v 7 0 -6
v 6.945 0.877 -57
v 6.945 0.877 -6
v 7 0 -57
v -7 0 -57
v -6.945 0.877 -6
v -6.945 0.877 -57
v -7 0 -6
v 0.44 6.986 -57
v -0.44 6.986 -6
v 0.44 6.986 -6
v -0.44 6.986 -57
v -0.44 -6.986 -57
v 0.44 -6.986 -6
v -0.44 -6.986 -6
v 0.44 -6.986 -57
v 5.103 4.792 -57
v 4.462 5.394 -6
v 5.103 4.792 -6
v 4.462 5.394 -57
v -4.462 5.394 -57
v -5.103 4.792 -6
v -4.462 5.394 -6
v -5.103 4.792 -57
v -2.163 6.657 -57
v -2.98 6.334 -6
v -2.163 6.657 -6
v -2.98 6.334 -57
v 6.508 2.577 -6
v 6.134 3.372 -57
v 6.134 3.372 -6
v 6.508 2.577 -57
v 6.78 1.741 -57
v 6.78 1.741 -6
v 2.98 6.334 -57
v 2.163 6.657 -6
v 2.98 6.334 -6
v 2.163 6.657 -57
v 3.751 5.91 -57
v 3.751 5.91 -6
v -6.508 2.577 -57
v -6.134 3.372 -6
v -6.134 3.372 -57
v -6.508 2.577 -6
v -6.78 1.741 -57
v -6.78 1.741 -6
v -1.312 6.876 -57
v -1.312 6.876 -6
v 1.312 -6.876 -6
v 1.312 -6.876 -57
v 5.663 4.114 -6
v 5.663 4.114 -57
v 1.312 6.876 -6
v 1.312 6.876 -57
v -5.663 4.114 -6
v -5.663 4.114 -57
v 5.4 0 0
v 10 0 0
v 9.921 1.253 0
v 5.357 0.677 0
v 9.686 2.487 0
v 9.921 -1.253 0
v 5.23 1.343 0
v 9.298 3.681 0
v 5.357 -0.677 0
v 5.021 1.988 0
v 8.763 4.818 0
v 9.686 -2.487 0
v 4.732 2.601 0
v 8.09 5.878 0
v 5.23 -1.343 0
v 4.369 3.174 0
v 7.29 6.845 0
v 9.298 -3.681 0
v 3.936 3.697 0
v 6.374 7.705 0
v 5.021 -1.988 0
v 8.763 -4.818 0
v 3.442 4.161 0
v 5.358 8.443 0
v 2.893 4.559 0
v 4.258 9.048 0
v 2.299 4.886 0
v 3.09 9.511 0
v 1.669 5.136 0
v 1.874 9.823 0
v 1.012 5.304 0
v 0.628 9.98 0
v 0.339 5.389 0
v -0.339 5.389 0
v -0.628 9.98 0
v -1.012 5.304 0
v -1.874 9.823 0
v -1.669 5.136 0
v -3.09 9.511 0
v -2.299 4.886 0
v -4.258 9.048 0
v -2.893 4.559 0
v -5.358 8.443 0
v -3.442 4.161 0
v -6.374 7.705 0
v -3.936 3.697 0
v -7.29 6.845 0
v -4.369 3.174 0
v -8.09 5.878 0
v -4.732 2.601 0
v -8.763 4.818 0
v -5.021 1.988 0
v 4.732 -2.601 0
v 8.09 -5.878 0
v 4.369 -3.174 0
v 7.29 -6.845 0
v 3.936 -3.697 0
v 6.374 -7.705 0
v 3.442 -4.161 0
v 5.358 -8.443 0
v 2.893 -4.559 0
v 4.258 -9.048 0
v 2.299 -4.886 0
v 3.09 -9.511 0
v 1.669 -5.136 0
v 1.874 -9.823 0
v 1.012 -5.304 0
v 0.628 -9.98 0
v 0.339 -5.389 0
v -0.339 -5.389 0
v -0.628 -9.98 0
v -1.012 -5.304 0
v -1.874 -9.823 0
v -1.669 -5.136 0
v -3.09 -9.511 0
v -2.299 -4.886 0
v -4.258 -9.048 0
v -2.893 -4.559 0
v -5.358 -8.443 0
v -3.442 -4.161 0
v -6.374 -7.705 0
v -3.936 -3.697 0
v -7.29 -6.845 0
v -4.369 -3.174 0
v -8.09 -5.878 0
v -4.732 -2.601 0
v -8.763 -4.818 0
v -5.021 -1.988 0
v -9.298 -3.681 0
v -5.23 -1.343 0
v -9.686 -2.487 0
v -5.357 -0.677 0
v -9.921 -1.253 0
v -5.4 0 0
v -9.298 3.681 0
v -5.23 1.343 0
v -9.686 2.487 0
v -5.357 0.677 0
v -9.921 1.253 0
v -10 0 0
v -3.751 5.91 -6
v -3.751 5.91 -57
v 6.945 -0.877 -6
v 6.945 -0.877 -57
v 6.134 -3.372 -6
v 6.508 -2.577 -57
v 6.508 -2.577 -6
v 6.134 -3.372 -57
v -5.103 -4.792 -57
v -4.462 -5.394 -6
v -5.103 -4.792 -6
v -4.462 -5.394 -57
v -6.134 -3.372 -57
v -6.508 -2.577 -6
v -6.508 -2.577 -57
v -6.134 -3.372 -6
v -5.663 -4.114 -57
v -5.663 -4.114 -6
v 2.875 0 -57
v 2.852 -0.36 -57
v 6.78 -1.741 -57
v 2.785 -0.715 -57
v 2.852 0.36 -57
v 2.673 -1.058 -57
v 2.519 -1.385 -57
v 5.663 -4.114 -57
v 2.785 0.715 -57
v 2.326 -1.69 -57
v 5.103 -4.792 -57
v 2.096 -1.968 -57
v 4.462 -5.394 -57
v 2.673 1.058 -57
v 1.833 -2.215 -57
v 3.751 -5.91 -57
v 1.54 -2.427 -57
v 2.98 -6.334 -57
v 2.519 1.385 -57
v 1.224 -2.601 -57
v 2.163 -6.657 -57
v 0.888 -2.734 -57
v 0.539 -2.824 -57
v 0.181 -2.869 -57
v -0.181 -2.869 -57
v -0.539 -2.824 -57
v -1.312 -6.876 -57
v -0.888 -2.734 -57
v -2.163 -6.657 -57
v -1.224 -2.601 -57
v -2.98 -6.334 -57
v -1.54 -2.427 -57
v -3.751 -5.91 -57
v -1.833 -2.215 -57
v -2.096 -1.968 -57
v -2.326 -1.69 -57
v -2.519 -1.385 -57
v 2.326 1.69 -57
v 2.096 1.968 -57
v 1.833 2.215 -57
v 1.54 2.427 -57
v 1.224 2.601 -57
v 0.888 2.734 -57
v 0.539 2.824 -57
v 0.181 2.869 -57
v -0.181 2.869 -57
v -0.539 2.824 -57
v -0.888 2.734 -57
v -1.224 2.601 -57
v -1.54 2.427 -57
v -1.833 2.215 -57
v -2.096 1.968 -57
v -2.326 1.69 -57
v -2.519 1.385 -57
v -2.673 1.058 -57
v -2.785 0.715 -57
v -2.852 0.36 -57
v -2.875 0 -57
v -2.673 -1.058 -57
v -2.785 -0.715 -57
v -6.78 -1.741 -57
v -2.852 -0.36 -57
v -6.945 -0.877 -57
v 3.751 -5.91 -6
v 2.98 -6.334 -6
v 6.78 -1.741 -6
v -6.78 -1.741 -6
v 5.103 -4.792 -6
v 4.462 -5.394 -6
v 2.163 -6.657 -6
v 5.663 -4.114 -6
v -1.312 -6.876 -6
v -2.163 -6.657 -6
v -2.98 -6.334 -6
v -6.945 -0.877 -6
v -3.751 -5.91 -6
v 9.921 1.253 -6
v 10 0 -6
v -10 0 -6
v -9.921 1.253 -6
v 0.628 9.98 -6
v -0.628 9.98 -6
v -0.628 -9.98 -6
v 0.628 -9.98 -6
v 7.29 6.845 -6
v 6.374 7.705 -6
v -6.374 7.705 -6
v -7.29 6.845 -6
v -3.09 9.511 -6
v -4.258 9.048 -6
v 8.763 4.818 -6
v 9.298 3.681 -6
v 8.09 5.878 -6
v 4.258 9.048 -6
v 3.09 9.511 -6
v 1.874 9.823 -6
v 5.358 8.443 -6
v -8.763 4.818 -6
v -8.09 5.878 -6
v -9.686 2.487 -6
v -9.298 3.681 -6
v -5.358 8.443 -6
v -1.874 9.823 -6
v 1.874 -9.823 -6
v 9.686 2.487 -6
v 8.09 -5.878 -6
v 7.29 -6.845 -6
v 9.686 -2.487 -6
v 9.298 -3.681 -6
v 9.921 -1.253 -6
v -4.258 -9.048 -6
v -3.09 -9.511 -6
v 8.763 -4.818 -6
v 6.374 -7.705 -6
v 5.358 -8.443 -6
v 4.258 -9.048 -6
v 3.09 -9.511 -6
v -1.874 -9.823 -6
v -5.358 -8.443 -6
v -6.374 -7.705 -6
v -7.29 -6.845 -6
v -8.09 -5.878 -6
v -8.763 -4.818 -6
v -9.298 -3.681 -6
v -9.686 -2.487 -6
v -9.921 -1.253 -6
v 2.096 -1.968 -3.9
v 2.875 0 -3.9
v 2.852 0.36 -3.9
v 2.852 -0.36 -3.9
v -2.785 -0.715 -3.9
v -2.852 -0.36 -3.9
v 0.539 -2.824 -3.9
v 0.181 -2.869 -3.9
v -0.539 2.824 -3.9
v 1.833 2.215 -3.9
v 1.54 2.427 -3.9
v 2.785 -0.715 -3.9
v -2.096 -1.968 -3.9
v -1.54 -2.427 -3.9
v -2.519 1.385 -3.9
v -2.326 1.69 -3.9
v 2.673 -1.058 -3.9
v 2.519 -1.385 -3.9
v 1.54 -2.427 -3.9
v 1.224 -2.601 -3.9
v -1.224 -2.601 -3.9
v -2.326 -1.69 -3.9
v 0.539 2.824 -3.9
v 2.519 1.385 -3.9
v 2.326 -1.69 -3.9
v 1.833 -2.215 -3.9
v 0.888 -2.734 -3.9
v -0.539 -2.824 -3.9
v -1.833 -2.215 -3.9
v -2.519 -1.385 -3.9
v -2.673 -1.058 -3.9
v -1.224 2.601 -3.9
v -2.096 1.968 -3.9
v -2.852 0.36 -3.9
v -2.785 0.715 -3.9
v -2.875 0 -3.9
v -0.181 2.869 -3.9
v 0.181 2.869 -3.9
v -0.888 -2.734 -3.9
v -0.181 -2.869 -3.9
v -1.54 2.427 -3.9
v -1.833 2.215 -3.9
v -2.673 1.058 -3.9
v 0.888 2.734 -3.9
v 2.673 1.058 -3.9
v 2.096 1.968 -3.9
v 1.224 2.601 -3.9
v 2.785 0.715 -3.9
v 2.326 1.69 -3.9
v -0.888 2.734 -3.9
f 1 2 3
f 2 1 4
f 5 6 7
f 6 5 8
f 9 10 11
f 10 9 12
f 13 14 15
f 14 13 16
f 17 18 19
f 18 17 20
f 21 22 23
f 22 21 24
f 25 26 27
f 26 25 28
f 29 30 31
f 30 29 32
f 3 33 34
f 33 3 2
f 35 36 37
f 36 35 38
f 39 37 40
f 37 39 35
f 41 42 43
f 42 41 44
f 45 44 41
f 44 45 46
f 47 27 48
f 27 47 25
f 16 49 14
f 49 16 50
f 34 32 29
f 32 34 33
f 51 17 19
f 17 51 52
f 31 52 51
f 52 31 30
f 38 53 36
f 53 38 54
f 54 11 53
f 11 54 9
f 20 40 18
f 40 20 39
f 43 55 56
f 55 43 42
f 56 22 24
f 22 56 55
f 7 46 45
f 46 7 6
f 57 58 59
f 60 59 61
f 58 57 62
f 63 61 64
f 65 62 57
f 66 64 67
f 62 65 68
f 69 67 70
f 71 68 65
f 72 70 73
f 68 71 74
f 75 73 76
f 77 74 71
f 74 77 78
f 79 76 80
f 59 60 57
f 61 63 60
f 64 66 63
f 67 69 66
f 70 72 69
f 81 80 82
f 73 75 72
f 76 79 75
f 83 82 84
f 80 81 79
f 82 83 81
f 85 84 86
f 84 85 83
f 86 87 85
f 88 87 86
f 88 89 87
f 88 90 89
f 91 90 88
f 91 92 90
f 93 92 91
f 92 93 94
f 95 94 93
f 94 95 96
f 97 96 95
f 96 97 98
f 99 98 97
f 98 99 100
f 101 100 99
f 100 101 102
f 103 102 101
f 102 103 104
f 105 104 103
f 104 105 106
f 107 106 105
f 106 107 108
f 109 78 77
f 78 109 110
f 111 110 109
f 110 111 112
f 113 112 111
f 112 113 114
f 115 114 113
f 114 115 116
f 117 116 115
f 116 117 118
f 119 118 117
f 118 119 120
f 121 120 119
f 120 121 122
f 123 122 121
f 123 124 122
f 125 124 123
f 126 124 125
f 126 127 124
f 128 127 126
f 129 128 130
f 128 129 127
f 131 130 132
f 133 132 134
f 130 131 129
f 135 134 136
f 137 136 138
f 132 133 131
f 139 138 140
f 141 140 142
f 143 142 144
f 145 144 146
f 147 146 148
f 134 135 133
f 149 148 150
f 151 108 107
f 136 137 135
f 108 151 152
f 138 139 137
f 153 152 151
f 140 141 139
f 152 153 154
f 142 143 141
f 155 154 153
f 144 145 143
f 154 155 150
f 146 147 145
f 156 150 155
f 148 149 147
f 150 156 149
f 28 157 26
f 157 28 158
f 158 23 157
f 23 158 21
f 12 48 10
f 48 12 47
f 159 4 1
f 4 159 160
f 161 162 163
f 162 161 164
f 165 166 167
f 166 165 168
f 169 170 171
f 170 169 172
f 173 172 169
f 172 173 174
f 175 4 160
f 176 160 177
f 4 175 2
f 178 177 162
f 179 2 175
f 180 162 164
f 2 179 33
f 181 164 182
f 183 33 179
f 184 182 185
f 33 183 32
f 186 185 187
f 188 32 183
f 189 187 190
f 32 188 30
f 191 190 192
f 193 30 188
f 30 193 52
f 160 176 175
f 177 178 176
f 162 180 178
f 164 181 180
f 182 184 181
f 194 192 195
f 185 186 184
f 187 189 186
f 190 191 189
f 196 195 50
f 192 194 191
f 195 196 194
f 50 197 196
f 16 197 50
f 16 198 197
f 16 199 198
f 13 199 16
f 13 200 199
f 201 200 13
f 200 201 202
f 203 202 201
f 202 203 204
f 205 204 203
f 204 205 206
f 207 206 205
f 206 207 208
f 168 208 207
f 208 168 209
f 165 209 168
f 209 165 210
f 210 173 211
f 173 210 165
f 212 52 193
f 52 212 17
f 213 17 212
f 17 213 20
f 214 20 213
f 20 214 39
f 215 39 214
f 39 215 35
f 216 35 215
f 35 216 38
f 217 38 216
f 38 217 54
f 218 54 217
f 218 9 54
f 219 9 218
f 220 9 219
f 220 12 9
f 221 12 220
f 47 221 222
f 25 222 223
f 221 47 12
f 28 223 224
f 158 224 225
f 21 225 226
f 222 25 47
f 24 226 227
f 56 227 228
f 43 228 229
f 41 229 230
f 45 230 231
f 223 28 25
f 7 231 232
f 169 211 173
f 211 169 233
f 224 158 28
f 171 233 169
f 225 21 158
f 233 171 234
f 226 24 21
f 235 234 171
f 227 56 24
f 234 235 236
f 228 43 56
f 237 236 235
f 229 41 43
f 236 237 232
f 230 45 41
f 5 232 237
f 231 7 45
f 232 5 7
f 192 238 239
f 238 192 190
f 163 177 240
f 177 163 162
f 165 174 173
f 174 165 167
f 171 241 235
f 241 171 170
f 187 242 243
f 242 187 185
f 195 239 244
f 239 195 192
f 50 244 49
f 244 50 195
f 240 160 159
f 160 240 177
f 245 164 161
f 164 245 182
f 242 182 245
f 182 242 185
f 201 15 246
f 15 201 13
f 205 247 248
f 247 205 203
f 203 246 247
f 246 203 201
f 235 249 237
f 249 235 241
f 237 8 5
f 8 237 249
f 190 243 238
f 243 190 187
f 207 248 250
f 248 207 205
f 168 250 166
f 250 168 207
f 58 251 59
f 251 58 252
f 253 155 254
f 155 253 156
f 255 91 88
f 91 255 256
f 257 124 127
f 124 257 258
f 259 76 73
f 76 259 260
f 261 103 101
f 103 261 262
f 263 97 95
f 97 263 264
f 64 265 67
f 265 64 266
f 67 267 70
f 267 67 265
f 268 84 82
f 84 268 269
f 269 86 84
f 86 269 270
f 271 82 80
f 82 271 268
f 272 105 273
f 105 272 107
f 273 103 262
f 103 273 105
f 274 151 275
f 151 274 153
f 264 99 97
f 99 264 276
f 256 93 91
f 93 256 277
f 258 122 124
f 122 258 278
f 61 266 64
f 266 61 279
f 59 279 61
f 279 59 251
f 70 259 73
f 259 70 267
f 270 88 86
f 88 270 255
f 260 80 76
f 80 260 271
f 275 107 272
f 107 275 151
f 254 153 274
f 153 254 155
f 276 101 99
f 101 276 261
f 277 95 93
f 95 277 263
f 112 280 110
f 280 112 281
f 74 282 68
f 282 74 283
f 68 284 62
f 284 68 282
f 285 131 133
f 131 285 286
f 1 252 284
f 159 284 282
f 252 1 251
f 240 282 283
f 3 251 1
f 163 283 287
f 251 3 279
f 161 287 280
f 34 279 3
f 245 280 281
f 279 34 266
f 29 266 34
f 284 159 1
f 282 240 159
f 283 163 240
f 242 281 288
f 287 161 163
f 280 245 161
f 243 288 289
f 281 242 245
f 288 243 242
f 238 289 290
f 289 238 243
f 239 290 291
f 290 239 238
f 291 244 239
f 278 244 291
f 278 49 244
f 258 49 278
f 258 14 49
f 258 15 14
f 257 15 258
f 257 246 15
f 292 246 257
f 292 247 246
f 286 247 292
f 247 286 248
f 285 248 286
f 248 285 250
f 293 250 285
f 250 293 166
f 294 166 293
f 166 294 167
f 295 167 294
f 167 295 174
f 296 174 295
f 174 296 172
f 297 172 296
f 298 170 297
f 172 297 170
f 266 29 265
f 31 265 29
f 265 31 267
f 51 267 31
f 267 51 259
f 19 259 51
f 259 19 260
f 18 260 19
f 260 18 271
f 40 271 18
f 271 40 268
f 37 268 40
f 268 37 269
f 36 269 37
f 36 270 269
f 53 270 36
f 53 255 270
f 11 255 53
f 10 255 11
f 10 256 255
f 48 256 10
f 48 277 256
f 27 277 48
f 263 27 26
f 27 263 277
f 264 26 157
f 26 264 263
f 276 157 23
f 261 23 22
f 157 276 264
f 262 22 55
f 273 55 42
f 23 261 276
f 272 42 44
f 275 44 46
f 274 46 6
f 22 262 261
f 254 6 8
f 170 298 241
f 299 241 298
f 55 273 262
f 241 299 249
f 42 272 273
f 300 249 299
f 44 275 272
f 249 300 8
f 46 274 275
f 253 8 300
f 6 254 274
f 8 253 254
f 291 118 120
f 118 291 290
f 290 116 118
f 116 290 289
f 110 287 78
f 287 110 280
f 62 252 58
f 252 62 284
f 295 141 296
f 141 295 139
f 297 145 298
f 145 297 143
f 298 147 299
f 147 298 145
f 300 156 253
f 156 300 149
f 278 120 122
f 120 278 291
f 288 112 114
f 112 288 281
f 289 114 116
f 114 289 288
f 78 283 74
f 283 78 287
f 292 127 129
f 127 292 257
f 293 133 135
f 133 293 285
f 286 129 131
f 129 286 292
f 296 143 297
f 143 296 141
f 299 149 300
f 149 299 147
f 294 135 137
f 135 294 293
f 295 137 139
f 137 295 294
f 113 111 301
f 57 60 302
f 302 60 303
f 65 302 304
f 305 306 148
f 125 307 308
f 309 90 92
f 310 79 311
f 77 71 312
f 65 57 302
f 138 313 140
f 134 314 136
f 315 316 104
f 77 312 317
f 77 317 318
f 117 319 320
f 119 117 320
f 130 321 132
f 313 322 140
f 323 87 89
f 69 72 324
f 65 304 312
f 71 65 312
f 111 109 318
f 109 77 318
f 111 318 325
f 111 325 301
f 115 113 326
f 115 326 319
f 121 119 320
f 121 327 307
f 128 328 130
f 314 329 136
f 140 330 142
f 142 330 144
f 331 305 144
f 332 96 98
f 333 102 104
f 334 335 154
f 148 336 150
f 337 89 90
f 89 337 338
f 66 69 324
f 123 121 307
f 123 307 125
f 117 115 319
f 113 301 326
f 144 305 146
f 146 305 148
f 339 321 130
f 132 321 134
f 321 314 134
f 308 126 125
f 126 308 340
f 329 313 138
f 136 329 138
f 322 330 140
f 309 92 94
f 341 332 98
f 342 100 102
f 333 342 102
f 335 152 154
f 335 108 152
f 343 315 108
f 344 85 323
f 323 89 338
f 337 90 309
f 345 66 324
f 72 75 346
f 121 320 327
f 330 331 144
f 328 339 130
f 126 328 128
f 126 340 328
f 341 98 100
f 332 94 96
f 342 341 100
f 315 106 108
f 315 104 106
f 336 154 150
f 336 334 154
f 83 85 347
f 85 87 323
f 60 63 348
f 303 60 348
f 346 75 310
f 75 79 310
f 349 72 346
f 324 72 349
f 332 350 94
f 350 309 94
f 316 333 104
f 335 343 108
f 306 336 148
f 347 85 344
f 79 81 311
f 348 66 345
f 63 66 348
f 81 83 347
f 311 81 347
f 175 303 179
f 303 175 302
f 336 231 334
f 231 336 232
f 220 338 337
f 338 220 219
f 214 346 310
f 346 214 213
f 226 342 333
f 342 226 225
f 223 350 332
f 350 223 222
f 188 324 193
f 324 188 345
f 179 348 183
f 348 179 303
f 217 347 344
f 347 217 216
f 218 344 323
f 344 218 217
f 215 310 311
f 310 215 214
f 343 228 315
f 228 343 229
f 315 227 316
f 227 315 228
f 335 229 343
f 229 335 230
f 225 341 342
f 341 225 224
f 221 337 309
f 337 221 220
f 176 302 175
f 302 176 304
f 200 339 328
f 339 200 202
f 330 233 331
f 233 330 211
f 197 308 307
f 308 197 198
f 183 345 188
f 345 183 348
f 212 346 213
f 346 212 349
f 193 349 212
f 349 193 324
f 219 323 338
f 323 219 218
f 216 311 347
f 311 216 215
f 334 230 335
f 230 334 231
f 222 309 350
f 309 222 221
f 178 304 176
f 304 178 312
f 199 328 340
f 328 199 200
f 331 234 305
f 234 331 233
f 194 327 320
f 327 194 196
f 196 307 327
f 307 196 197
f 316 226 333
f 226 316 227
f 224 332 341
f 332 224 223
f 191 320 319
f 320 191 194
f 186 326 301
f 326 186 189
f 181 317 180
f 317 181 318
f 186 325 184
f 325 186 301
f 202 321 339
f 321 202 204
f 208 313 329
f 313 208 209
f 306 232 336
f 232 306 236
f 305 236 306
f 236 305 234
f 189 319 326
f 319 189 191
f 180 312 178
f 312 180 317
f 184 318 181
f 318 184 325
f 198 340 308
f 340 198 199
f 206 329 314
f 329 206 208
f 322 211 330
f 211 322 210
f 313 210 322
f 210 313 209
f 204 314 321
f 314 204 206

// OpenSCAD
$fn = 50;


difference() {
	union() {
		translate(v = [0, 0, -57.0000000000]) {
			cylinder(h = 57, r = 7.0000000000);
		}
		translate(v = [0, 0, -6.0000000000]) {
			cylinder(h = 6, r = 10.0000000000);
		}
	}
	union() {
		translate(v = [0, 0, 0]) {
			rotate(a = [0, 0, 0]) {
				difference() {
					union() {
						#translate(v = [0, 0, -57.0000000000]) {
							cylinder(h = 57, r = 2.6000000000);
						}
						#translate(v = [0, 0, -3.9000000000]) {
							cylinder(h = 3.9000000000, r = 7.0000000000, r1 = 2.8750000000, r2 = 5.4000000000);
						}
						#translate(v = [0, 0, -57.0000000000]) {
							cylinder(h = 57, r = 2.8750000000);
						}
						#translate(v = [0, 0, -57.0000000000]) {
							cylinder(h = 57, r = 2.6000000000);
						}
					}
					union();
				}
			}
		}
	}
}
